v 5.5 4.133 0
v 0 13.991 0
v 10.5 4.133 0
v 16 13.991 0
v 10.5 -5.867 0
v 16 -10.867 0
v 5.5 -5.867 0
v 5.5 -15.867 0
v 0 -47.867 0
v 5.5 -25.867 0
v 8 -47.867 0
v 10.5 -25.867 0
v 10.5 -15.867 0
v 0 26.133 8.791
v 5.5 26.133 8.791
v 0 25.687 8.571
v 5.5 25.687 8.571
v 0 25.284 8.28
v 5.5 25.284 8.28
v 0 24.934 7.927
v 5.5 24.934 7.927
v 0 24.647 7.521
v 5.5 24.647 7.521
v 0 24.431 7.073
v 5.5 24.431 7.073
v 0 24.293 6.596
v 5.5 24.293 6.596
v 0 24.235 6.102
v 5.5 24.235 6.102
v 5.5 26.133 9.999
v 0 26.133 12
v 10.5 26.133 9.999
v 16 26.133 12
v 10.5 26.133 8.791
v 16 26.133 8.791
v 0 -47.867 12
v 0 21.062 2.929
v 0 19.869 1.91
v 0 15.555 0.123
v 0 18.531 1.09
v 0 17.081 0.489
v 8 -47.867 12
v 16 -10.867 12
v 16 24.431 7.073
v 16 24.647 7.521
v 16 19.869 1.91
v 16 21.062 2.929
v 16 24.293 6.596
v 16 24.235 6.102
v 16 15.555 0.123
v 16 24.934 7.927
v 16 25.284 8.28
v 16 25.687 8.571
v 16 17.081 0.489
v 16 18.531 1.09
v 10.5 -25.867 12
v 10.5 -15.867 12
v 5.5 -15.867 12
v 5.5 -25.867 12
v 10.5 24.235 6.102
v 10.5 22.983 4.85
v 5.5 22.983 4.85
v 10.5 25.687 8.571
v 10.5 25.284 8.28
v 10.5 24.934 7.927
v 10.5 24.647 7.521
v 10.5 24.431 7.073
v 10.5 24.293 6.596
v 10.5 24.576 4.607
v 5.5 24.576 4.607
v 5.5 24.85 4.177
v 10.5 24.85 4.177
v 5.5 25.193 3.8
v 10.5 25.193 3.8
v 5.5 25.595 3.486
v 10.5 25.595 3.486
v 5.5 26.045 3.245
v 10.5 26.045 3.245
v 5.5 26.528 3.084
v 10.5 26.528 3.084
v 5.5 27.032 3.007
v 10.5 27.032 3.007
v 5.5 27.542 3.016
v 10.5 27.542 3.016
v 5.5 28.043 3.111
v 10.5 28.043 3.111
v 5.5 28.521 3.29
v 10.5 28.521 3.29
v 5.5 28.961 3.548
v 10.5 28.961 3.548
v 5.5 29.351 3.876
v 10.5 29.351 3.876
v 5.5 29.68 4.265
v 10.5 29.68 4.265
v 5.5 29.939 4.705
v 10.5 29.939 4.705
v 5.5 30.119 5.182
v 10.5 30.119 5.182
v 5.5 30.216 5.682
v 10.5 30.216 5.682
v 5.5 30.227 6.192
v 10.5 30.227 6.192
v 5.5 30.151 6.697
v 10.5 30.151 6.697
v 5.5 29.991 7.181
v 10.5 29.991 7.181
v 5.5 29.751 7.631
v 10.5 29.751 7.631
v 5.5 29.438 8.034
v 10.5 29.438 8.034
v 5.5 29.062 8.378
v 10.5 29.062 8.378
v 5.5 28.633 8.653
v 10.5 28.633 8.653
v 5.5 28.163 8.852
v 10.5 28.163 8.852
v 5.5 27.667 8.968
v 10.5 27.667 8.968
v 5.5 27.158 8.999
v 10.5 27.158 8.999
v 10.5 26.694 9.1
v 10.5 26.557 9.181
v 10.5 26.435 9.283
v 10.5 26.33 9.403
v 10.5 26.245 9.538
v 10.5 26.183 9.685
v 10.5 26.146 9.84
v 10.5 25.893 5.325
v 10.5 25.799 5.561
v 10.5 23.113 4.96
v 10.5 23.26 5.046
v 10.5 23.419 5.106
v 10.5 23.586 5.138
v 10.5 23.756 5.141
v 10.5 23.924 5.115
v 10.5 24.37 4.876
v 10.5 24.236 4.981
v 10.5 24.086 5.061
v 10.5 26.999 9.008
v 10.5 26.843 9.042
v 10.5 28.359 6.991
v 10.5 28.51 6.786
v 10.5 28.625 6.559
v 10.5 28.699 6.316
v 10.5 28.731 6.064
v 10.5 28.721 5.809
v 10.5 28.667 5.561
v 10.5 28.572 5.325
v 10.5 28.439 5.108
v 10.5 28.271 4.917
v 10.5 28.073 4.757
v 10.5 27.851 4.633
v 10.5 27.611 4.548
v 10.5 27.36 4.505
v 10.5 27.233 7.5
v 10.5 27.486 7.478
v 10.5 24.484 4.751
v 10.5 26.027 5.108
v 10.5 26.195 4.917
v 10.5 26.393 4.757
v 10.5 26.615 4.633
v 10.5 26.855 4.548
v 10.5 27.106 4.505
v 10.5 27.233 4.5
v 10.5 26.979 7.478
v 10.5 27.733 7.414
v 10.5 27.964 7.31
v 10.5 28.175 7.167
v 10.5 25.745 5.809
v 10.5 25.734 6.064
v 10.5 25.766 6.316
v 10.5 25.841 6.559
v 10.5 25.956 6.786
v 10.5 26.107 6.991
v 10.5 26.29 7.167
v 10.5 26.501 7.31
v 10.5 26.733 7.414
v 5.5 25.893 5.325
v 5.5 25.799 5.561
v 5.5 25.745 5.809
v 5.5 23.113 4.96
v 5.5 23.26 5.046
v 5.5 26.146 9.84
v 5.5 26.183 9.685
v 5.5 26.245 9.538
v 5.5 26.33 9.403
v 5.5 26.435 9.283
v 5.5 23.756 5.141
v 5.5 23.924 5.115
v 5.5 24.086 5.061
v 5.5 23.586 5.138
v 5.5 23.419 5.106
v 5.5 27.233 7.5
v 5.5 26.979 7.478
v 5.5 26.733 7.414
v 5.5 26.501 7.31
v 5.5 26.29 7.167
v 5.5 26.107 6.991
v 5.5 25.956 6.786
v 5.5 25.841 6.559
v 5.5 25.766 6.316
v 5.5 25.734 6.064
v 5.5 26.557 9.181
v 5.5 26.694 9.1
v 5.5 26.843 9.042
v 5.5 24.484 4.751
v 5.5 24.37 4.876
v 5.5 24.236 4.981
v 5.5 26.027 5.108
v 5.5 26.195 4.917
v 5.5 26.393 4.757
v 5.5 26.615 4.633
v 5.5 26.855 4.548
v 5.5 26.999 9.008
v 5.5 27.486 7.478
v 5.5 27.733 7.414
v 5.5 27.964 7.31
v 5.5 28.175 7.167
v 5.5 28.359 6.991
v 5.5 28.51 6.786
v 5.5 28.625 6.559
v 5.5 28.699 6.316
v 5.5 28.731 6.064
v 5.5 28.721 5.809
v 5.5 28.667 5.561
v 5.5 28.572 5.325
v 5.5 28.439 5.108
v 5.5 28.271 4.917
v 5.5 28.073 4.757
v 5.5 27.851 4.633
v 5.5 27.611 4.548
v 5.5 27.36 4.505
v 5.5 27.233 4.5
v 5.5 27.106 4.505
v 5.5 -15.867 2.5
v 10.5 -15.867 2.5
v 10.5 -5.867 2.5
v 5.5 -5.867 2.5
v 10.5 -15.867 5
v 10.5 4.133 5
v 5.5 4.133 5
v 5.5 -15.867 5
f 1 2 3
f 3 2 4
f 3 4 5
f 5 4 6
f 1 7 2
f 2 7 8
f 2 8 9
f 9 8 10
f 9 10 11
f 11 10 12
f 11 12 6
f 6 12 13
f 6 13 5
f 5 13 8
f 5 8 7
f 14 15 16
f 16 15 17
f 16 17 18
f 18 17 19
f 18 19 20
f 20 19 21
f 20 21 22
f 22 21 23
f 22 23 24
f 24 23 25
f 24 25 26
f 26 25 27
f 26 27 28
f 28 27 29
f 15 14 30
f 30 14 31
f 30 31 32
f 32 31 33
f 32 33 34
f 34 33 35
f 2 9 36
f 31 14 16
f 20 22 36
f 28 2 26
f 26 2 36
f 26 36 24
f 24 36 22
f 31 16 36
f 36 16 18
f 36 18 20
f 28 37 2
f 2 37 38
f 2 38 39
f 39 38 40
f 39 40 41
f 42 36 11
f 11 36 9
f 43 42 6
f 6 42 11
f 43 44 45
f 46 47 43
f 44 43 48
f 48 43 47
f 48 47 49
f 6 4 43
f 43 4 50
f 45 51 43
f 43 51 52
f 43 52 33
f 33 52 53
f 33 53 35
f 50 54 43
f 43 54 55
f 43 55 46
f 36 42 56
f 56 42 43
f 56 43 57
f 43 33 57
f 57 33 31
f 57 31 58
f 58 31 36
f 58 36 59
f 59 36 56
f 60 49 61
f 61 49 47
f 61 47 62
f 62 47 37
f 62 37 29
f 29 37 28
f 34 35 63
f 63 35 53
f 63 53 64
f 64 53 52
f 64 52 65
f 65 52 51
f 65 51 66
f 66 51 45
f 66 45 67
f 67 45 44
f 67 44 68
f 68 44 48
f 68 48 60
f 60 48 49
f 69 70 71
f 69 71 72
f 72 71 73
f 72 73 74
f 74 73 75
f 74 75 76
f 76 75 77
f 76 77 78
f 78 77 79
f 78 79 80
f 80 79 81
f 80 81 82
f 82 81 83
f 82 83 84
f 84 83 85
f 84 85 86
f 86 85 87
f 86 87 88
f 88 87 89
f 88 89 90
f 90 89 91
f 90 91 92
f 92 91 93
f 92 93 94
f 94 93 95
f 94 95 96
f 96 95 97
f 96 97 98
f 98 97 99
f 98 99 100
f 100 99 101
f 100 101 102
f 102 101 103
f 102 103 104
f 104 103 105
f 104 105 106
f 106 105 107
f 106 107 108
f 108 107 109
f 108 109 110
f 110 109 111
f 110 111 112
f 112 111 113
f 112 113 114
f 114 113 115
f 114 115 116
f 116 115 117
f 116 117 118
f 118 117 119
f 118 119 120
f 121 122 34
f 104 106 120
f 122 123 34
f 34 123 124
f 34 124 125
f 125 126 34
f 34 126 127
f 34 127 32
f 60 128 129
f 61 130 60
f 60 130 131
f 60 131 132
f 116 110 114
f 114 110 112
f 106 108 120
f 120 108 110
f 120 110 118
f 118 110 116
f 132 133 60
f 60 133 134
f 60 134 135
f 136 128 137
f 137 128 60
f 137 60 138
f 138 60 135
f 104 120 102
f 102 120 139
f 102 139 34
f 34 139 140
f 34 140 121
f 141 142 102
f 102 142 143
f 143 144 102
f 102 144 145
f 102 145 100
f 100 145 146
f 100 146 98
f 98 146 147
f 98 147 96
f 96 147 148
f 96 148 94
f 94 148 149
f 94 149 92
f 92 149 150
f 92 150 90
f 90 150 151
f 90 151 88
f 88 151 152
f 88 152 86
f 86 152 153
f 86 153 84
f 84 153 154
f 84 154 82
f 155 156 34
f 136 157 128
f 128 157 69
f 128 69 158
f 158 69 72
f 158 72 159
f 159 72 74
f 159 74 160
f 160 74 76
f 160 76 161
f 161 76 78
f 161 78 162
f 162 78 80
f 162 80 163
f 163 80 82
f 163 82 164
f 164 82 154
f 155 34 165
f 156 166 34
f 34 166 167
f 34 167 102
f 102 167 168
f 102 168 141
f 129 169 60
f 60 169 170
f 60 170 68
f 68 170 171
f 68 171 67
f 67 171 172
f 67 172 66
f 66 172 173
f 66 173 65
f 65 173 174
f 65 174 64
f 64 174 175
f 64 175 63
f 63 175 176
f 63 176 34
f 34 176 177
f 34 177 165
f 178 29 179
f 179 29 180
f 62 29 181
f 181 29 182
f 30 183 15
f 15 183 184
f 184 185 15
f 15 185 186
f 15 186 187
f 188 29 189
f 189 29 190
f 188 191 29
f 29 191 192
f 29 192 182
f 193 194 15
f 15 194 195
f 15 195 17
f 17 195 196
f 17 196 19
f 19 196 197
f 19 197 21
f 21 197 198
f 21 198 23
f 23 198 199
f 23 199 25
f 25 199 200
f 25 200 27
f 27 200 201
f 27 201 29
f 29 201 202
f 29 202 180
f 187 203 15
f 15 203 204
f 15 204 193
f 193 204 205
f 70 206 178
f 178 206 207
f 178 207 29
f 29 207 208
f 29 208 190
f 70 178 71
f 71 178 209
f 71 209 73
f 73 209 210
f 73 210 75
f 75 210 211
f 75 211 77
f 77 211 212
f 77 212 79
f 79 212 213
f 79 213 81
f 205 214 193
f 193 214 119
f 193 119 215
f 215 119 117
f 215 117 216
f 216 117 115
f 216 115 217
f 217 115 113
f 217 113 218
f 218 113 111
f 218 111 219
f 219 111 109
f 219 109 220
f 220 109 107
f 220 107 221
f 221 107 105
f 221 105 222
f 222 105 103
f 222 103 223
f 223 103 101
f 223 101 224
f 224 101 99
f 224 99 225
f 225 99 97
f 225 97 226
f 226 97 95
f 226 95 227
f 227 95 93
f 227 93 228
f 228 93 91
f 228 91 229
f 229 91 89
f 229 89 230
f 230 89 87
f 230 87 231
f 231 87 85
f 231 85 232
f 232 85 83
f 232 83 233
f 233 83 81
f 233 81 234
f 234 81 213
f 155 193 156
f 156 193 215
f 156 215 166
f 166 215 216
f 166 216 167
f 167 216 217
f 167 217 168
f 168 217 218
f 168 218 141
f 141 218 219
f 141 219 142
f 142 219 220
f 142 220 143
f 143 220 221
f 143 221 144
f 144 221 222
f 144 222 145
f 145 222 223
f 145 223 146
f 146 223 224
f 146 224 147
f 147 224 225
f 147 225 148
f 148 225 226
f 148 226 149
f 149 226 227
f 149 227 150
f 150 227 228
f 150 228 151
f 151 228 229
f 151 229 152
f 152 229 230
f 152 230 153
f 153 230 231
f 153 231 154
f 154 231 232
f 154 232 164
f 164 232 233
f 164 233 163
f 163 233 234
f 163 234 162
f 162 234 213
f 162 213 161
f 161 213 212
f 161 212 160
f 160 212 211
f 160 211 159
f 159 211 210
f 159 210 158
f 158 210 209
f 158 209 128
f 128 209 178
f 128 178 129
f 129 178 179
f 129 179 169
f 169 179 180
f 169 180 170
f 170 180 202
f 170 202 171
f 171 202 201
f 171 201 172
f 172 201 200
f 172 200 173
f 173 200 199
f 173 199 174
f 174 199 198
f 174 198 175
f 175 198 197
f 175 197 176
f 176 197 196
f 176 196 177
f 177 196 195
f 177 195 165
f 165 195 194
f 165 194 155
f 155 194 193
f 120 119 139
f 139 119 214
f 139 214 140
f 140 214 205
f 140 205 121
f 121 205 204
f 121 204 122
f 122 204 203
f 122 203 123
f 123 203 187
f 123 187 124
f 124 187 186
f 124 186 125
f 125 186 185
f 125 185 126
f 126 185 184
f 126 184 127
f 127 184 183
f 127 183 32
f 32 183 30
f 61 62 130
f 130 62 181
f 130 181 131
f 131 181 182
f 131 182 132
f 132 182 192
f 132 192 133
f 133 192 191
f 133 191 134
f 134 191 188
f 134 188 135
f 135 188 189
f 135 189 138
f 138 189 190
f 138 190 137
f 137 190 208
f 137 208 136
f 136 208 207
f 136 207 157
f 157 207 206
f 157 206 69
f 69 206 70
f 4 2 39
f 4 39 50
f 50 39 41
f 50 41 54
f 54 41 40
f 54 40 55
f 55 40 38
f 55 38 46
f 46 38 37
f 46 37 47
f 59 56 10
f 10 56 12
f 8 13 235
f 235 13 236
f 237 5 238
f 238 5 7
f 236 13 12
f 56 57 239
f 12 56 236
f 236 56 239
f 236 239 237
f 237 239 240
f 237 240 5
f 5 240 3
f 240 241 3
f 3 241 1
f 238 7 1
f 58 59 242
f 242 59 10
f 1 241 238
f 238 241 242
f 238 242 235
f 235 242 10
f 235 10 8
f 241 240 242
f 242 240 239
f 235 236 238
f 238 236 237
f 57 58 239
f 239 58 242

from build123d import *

# Parameters (mm, degrees)
BOSS_EXTRUDE1_DEPTH     = 12
CUT_EXTRUDE1_DEPTH      = 50.992671716
CUT_EXTRUDE1_DEPTH_BACK = 50.992671716
CUT_EXTRUDE2_DEPTH      = 50.992671716
CUT_EXTRUDE2_DEPTH_BACK = 50.992671716
SKETCH4_R               = 3
SKETCH4_R_2             = 1.5
SKETCH5_R               = 3
SKETCH5_R_2             = 1.5
BOSS_EXTRUDE2_DEPTH     = 2.5
FILLET1_R               = 1
FILLET2_R               = 10
SKETCH6_W               = 5
SKETCH6_H               = 10
CUT_EXTRUDE3_DEPTH      = 5
SKETCH7_W               = 5
SKETCH7_H               = 2.5
CUT_EXTRUDE4_DEPTH      = 10
SKETCH8_W               = 5
SKETCH8_H               = 10
CUT_EXTRUDE5_DEPTH      = 52.877425006


with BuildPart() as part:
    # Sketch1 → Boss-Extrude1 (new body)
    with BuildSketch(Plane.XY):
        Polygon((0, 26.132816823), (0, -47.867183177), (8, -47.867183177), (16, -10.867183177), (16, 26.132816823), align=None)
    extrude(amount=BOSS_EXTRUDE1_DEPTH)

    # Sketch3 → Cut-Extrude1 (cut, two sides: drawn at the far end of the back side and taken through both)
    with BuildSketch(Plane(origin=(8, 0, 0), x_dir=(0, 0, -1), z_dir=(1, 0, 0)).offset(-CUT_EXTRUDE1_DEPTH_BACK)):
        Polygon((-8, 26.132816823), (0, 26.132816823), (0, 18.132816823), align=None)
    extrude(amount=CUT_EXTRUDE1_DEPTH + CUT_EXTRUDE1_DEPTH_BACK, mode=Mode.SUBTRACT)

    # Sketch4 → Cut-Extrude2 (cut, two sides: drawn at the far end of the back side and taken through both)
    with BuildSketch(Plane(origin=(8, 0, 0), x_dir=(0, 0, -1), z_dir=(1, 0, 0)).offset(-CUT_EXTRUDE2_DEPTH_BACK)):
        with Locations((-6, 27.232816823)):
            Circle(SKETCH4_R)
        with Locations((-6, 27.232816823)):
            Circle(SKETCH4_R_2, mode=Mode.SUBTRACT)
    extrude(amount=CUT_EXTRUDE2_DEPTH + CUT_EXTRUDE2_DEPTH_BACK, mode=Mode.SUBTRACT)

    # Sketch5 → Boss-Extrude2 (add, symmetric)
    with BuildSketch(Plane(origin=(8, 0, 0), x_dir=(0, 0, -1), z_dir=(1, 0, 0))):
        with Locations((-6, 27.232816823)):
            Circle(SKETCH5_R)
        with Locations((-6, 27.232816823)):
            Circle(SKETCH5_R_2, mode=Mode.SUBTRACT)
    extrude(amount=BOSS_EXTRUDE2_DEPTH, both=True)

    # Fillet1
    fillet1_edges = [part.edges().sort_by_distance(p)[0] for p in [
        (8, 24.234541988, 6.101725164),
        (8, 26.132816823, 8.791057147),
    ]]
    fillet(fillet1_edges, radius=FILLET1_R)

    # Fillet2
    fillet2_edges = [part.edges().sort_by_distance(p)[0] for p in [
        (8, 18.132816823, 0),
    ]]
    fillet(fillet2_edges, radius=FILLET2_R)

    # Sketch6 → Cut-Extrude3 (cut)
    with BuildSketch(Plane(origin=(0, 0, 0), x_dir=(-1, 0, 0), z_dir=(0, 0, -1))):
        with Locations((-8, -0.867183177)):
            Rectangle(SKETCH6_W, SKETCH6_H)
        with Locations((-8, -20.867183177)):
            Rectangle(SKETCH6_W, SKETCH6_H)
    extrude(amount=-CUT_EXTRUDE3_DEPTH, mode=Mode.SUBTRACT)

    # Sketch7 → Cut-Extrude4 (cut)
    with BuildSketch(Plane.XZ.offset(15.867183177)):
        with Locations((8, 3.75)):
            Rectangle(SKETCH7_W, SKETCH7_H)
    extrude(amount=-CUT_EXTRUDE4_DEPTH, mode=Mode.SUBTRACT)

    # Sketch8 → Cut-Extrude5 (cut, through all)
    with BuildSketch(Plane(origin=(0, 0, 0), x_dir=(-1, 0, 0), z_dir=(0, 0, -1))):
        with Locations((-8, -20.867183177)):
            Rectangle(SKETCH8_W, SKETCH8_H)
    extrude(amount=-CUT_EXTRUDE5_DEPTH, mode=Mode.SUBTRACT)


solid = part.part
